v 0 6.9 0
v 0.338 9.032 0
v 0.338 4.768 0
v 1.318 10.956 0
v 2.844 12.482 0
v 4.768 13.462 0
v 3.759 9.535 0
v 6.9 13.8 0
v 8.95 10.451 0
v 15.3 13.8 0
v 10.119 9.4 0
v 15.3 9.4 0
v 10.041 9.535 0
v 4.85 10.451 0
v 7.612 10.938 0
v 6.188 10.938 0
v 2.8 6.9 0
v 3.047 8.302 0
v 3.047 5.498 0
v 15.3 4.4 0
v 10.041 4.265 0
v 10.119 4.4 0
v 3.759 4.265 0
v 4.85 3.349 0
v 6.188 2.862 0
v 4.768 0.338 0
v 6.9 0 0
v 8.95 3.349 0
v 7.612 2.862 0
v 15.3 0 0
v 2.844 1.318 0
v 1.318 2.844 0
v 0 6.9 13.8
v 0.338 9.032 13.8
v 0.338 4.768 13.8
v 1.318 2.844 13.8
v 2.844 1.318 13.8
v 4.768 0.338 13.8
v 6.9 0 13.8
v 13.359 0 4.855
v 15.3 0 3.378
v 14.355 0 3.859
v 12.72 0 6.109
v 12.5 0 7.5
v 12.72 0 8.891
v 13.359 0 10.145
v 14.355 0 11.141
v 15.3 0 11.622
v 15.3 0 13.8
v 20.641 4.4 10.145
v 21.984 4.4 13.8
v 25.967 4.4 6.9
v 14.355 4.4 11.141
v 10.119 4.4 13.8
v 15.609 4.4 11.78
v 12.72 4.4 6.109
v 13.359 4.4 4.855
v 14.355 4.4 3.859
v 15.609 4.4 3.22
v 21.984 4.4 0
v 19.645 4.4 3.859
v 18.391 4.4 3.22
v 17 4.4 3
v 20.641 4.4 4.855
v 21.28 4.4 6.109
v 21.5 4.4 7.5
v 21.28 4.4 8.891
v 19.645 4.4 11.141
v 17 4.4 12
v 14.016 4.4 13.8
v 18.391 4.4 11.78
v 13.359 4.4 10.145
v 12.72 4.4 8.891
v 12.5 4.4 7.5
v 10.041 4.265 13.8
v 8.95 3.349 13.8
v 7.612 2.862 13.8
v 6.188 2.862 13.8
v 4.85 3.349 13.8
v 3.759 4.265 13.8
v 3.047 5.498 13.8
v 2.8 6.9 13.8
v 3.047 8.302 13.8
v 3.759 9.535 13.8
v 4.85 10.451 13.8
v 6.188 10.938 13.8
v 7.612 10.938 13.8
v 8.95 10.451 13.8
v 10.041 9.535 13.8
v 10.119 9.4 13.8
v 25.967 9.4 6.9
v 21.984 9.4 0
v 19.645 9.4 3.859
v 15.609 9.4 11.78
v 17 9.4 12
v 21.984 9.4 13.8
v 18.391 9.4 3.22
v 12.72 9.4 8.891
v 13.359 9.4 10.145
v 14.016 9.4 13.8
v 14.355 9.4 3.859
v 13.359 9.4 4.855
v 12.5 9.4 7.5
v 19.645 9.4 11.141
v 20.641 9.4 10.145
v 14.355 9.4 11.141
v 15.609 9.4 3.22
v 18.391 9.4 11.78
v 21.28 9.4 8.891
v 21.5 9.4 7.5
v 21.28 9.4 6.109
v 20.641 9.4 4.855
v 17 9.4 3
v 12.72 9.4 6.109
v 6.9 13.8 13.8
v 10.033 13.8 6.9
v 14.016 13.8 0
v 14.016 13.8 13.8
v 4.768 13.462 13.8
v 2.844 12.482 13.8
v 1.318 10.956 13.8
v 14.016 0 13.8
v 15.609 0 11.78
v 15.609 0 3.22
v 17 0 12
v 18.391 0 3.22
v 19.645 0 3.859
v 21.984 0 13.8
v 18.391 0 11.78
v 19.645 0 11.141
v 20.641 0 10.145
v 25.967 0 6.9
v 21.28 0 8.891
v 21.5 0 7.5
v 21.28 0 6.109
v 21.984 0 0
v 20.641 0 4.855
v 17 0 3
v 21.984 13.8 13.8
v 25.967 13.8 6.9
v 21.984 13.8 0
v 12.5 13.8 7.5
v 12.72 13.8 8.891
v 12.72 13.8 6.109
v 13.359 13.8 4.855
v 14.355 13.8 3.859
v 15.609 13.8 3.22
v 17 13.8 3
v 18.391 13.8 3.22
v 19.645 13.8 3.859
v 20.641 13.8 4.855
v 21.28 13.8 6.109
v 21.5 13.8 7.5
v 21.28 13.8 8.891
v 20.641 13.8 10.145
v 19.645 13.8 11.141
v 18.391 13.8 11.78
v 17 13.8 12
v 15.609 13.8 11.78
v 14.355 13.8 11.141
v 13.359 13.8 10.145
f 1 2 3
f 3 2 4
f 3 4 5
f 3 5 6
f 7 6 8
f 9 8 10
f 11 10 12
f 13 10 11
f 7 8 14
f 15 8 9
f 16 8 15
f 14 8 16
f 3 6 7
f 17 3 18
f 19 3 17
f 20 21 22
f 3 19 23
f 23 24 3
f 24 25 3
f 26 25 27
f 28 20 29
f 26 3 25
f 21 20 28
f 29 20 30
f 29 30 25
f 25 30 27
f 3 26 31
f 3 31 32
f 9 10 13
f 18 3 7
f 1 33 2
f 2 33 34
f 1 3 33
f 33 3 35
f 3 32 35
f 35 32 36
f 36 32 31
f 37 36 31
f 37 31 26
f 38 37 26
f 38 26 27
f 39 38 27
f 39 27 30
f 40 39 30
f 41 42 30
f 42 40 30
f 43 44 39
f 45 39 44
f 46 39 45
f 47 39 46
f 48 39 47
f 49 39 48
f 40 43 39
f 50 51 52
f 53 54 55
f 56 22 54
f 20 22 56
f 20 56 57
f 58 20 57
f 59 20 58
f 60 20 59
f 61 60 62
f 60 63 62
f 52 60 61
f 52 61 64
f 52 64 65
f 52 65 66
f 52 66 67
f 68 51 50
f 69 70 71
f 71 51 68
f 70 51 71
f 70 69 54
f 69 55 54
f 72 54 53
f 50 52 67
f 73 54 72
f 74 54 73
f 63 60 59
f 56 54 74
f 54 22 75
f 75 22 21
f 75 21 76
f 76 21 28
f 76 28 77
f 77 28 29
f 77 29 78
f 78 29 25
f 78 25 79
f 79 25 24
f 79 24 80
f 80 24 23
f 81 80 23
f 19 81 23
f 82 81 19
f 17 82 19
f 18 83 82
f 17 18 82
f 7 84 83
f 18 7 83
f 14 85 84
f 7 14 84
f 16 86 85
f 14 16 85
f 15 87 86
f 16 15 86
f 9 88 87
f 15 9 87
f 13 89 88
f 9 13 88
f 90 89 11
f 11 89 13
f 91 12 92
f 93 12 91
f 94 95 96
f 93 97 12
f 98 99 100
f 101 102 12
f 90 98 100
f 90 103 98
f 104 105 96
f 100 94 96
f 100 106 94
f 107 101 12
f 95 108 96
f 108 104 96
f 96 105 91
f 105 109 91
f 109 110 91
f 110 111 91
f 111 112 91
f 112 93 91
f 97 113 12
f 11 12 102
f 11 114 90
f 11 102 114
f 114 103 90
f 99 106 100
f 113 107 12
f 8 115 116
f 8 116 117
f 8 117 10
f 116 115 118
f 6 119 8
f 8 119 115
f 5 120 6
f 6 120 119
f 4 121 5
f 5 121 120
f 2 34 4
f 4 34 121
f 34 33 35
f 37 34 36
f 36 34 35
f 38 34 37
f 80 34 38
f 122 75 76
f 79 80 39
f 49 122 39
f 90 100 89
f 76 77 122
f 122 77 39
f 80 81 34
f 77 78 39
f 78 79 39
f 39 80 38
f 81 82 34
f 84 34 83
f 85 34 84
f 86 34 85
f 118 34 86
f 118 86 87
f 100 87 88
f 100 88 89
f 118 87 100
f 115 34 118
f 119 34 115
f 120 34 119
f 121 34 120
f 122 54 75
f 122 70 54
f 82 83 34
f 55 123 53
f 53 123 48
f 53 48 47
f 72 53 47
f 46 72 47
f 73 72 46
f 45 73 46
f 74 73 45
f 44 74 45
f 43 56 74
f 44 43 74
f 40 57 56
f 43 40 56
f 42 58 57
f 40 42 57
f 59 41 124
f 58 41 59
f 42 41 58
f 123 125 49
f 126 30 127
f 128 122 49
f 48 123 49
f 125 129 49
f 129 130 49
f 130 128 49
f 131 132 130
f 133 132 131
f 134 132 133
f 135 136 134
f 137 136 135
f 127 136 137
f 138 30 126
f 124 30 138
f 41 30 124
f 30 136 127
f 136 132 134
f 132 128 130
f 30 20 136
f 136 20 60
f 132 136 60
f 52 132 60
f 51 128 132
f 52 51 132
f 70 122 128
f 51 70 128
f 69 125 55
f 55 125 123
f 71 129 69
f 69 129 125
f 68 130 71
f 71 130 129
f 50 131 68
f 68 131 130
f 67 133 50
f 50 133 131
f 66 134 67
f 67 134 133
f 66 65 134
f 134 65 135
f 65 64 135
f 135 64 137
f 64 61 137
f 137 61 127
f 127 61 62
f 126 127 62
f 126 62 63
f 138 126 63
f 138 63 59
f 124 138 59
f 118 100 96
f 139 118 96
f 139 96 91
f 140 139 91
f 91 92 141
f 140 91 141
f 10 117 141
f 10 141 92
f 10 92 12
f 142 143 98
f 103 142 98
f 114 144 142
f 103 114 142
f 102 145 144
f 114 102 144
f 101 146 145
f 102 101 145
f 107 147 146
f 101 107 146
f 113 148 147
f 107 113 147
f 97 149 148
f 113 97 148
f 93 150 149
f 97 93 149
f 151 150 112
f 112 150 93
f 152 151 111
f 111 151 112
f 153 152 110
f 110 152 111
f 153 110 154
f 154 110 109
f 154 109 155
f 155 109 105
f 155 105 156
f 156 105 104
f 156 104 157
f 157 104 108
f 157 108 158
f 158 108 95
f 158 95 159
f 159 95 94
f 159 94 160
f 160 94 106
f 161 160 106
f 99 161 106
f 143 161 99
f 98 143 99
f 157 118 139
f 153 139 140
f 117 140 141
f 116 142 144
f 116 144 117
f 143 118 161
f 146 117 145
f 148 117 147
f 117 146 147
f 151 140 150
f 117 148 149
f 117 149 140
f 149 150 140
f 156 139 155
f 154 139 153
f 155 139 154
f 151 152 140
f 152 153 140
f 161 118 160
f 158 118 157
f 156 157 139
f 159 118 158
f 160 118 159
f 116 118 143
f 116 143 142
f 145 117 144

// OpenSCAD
// file: functions.scad
// PRUSA Mendel  
// Functions used in many files
// GNU GPL v3
// Josef Průša
// josefprusa@me.com
// prusadjs.cz
// http://www.reprap.org/wiki/Prusa_Mendel
// http://github.com/prusajr/PrusaMendel


module nut(d,h,horizontal=true){
cornerdiameter =  (d / 2) / cos (180 / 6);
cylinder(h = h, r = cornerdiameter, $fn = 6);
if(horizontal){
for(i = [1:6]){
	rotate([0,0,60*i]) translate([-cornerdiameter-0.2,0,0]) rotate([0,0,-45]) cube(size = [2,2,h]);
}}
}

// Based on nophead research
module polyhole(d,h) {
    n = max(round(2 * d),3);
    rotate([0,0,180])
        cylinder(h = h, r = (d / 2) / cos (180 / n), $fn = n);
}




module roundcorner(diameter){
	difference(){
		cube(size = [diameter,diameter,99], center = false);
		translate(v = [diameter, diameter, 0]) cylinder(h = 100, r=diameter, center=false,$fn = max(3*diameter,20));
	}
}
// file: configuration.scad
// PRUSA Mendel  
// Configuration file
// GNU GPL v2
// Josef Pra
// josefprusa@me.com
// prusadjs.cz
// http://www.reprap.org/wiki/Prusa_Mendel
// http://github.com/prusajr/PrusaMendel


// PLEASE SELECT ONE OF THE CONFIGURATIONS BELOW
// BY UN-COMMENTING IT


variant=0; //0 for metric
//variant=1; //1 for SAE
if(variant==0){
echo("variant: metric");
}else if(variant==1){
echo("variant: sae");
} else{
echo("WARNING: INVALID CONFIGURATION");
}




vars=[
//[m8_dia,m8_nut, m4_dia, m4_nut, m3_dia, m3_nut, bush_dia, mot_shaft, bush_rod, bush_outerdia, bush_length, m5_dia, m5_nut]
[9, 16.4, 5,9, 4.4, 7, 11, 5.3, 8, 16, 11, 5.6, 10],//metric
[9,15.7,5.5,10.6,5.5,10.6,11.5,5.3,7.9375,16,11,5.6, 10]//SAE
];


//BUSHING TYPE Can generate three versions
// 1 - regular old ones
// 2 - helical ones
// 3 - holders for brass or any other bought bushings
bushing_type = 2;


//Round corner diameter
round_corner_diameter = 8;


//Thin wall size
layer_height = 0.4;
perimeter_width_over_thicknes = 1.6;
infill_widht_over_thickness = 1.55;
thin_wall = 2*(perimeter_width_over_thicknes*layer_height+infill_widht_over_thickness*layer_height);
if(thin_wall<2){
	echo("Check thin wall size, its below 2mm!");
}
echo(thin_wall);


//DO NOT TOUCH THIS SECTION!
m8_diameter = vars[variant][0];
m8_nut_diameter = vars[variant][1];
m4_diameter = vars[variant][2];
m4_nut_diameter = vars[variant][3];
m3_diameter = vars[variant][4];
m3_nut_diameter = vars[variant][5];
bushing_diameter = vars[variant][6];
motor_shaft=vars[variant][7];
bushing_rodsize = vars[variant][8];
bushing_outerDiameter = vars[variant][9];
bushing_lenght = vars[variant][10];
m5_diameter = vars[variant][11];
m5_nut_diameter = vars[variant][12];



// MINI-HUXLEY VERSION (TODO, just place holder)
// include <configuration-huxley.scad>


// MEGA VERSION (TODO, just place holder)
// include <configuration-mega.scad>




// Some basic functions, probably should be somewhere else
module roundcorner(diameter){
	difference(){
		cube(size = [diameter,diameter,99], center = false);
		translate(v = [diameter, diameter, 0]) cylinder(h = 100, r=diameter, center=true);
	}
}

include <functions.scad>
// main file
// PRUSA Mendel  
// Bar clamp
// Used for joining 8mm rods
// GNU GPL v3
// Josef Průša
// josefprusa@me.com
// prusadjs.cz
// http://www.reprap.org/wiki/Prusa_Mendel
// http://github.com/prusajr/PrusaMendel

include <configuration.scad>

/**
 * @id bar-clamp
 * @name Bar clamp
 * @category Printed
 * @using 2 m8nut
 * @using 2 m8washer
 */ 

module barclamp(){
outer_diameter = (m8_diameter-0.0)/2+2.4;

difference(){
	union(){
		
		translate([outer_diameter, outer_diameter, 0])cylinder(h =outer_diameter*2, r = outer_diameter, $fn = 20);
		translate([outer_diameter, 0, 0])cube([outer_diameter+1.5,outer_diameter*2,outer_diameter*2]);
		translate([18, 2*outer_diameter, outer_diameter])rotate([90, 0, 0]) rotate([00, 0, 0]) nut(outer_diameter*2,outer_diameter*2,false);
	}


	translate([18, outer_diameter, 9])cube([18,05,20], center=true);
	translate([outer_diameter, outer_diameter, -1]) #cylinder(h =20, r = m8_diameter/2-0.4, $fn = 18);
	translate([17, 17, 7.5]) rotate([90, 0, 0]) #cylinder(h =20, r = m8_diameter/2, $fn = 20);
}
}
barclamp();
